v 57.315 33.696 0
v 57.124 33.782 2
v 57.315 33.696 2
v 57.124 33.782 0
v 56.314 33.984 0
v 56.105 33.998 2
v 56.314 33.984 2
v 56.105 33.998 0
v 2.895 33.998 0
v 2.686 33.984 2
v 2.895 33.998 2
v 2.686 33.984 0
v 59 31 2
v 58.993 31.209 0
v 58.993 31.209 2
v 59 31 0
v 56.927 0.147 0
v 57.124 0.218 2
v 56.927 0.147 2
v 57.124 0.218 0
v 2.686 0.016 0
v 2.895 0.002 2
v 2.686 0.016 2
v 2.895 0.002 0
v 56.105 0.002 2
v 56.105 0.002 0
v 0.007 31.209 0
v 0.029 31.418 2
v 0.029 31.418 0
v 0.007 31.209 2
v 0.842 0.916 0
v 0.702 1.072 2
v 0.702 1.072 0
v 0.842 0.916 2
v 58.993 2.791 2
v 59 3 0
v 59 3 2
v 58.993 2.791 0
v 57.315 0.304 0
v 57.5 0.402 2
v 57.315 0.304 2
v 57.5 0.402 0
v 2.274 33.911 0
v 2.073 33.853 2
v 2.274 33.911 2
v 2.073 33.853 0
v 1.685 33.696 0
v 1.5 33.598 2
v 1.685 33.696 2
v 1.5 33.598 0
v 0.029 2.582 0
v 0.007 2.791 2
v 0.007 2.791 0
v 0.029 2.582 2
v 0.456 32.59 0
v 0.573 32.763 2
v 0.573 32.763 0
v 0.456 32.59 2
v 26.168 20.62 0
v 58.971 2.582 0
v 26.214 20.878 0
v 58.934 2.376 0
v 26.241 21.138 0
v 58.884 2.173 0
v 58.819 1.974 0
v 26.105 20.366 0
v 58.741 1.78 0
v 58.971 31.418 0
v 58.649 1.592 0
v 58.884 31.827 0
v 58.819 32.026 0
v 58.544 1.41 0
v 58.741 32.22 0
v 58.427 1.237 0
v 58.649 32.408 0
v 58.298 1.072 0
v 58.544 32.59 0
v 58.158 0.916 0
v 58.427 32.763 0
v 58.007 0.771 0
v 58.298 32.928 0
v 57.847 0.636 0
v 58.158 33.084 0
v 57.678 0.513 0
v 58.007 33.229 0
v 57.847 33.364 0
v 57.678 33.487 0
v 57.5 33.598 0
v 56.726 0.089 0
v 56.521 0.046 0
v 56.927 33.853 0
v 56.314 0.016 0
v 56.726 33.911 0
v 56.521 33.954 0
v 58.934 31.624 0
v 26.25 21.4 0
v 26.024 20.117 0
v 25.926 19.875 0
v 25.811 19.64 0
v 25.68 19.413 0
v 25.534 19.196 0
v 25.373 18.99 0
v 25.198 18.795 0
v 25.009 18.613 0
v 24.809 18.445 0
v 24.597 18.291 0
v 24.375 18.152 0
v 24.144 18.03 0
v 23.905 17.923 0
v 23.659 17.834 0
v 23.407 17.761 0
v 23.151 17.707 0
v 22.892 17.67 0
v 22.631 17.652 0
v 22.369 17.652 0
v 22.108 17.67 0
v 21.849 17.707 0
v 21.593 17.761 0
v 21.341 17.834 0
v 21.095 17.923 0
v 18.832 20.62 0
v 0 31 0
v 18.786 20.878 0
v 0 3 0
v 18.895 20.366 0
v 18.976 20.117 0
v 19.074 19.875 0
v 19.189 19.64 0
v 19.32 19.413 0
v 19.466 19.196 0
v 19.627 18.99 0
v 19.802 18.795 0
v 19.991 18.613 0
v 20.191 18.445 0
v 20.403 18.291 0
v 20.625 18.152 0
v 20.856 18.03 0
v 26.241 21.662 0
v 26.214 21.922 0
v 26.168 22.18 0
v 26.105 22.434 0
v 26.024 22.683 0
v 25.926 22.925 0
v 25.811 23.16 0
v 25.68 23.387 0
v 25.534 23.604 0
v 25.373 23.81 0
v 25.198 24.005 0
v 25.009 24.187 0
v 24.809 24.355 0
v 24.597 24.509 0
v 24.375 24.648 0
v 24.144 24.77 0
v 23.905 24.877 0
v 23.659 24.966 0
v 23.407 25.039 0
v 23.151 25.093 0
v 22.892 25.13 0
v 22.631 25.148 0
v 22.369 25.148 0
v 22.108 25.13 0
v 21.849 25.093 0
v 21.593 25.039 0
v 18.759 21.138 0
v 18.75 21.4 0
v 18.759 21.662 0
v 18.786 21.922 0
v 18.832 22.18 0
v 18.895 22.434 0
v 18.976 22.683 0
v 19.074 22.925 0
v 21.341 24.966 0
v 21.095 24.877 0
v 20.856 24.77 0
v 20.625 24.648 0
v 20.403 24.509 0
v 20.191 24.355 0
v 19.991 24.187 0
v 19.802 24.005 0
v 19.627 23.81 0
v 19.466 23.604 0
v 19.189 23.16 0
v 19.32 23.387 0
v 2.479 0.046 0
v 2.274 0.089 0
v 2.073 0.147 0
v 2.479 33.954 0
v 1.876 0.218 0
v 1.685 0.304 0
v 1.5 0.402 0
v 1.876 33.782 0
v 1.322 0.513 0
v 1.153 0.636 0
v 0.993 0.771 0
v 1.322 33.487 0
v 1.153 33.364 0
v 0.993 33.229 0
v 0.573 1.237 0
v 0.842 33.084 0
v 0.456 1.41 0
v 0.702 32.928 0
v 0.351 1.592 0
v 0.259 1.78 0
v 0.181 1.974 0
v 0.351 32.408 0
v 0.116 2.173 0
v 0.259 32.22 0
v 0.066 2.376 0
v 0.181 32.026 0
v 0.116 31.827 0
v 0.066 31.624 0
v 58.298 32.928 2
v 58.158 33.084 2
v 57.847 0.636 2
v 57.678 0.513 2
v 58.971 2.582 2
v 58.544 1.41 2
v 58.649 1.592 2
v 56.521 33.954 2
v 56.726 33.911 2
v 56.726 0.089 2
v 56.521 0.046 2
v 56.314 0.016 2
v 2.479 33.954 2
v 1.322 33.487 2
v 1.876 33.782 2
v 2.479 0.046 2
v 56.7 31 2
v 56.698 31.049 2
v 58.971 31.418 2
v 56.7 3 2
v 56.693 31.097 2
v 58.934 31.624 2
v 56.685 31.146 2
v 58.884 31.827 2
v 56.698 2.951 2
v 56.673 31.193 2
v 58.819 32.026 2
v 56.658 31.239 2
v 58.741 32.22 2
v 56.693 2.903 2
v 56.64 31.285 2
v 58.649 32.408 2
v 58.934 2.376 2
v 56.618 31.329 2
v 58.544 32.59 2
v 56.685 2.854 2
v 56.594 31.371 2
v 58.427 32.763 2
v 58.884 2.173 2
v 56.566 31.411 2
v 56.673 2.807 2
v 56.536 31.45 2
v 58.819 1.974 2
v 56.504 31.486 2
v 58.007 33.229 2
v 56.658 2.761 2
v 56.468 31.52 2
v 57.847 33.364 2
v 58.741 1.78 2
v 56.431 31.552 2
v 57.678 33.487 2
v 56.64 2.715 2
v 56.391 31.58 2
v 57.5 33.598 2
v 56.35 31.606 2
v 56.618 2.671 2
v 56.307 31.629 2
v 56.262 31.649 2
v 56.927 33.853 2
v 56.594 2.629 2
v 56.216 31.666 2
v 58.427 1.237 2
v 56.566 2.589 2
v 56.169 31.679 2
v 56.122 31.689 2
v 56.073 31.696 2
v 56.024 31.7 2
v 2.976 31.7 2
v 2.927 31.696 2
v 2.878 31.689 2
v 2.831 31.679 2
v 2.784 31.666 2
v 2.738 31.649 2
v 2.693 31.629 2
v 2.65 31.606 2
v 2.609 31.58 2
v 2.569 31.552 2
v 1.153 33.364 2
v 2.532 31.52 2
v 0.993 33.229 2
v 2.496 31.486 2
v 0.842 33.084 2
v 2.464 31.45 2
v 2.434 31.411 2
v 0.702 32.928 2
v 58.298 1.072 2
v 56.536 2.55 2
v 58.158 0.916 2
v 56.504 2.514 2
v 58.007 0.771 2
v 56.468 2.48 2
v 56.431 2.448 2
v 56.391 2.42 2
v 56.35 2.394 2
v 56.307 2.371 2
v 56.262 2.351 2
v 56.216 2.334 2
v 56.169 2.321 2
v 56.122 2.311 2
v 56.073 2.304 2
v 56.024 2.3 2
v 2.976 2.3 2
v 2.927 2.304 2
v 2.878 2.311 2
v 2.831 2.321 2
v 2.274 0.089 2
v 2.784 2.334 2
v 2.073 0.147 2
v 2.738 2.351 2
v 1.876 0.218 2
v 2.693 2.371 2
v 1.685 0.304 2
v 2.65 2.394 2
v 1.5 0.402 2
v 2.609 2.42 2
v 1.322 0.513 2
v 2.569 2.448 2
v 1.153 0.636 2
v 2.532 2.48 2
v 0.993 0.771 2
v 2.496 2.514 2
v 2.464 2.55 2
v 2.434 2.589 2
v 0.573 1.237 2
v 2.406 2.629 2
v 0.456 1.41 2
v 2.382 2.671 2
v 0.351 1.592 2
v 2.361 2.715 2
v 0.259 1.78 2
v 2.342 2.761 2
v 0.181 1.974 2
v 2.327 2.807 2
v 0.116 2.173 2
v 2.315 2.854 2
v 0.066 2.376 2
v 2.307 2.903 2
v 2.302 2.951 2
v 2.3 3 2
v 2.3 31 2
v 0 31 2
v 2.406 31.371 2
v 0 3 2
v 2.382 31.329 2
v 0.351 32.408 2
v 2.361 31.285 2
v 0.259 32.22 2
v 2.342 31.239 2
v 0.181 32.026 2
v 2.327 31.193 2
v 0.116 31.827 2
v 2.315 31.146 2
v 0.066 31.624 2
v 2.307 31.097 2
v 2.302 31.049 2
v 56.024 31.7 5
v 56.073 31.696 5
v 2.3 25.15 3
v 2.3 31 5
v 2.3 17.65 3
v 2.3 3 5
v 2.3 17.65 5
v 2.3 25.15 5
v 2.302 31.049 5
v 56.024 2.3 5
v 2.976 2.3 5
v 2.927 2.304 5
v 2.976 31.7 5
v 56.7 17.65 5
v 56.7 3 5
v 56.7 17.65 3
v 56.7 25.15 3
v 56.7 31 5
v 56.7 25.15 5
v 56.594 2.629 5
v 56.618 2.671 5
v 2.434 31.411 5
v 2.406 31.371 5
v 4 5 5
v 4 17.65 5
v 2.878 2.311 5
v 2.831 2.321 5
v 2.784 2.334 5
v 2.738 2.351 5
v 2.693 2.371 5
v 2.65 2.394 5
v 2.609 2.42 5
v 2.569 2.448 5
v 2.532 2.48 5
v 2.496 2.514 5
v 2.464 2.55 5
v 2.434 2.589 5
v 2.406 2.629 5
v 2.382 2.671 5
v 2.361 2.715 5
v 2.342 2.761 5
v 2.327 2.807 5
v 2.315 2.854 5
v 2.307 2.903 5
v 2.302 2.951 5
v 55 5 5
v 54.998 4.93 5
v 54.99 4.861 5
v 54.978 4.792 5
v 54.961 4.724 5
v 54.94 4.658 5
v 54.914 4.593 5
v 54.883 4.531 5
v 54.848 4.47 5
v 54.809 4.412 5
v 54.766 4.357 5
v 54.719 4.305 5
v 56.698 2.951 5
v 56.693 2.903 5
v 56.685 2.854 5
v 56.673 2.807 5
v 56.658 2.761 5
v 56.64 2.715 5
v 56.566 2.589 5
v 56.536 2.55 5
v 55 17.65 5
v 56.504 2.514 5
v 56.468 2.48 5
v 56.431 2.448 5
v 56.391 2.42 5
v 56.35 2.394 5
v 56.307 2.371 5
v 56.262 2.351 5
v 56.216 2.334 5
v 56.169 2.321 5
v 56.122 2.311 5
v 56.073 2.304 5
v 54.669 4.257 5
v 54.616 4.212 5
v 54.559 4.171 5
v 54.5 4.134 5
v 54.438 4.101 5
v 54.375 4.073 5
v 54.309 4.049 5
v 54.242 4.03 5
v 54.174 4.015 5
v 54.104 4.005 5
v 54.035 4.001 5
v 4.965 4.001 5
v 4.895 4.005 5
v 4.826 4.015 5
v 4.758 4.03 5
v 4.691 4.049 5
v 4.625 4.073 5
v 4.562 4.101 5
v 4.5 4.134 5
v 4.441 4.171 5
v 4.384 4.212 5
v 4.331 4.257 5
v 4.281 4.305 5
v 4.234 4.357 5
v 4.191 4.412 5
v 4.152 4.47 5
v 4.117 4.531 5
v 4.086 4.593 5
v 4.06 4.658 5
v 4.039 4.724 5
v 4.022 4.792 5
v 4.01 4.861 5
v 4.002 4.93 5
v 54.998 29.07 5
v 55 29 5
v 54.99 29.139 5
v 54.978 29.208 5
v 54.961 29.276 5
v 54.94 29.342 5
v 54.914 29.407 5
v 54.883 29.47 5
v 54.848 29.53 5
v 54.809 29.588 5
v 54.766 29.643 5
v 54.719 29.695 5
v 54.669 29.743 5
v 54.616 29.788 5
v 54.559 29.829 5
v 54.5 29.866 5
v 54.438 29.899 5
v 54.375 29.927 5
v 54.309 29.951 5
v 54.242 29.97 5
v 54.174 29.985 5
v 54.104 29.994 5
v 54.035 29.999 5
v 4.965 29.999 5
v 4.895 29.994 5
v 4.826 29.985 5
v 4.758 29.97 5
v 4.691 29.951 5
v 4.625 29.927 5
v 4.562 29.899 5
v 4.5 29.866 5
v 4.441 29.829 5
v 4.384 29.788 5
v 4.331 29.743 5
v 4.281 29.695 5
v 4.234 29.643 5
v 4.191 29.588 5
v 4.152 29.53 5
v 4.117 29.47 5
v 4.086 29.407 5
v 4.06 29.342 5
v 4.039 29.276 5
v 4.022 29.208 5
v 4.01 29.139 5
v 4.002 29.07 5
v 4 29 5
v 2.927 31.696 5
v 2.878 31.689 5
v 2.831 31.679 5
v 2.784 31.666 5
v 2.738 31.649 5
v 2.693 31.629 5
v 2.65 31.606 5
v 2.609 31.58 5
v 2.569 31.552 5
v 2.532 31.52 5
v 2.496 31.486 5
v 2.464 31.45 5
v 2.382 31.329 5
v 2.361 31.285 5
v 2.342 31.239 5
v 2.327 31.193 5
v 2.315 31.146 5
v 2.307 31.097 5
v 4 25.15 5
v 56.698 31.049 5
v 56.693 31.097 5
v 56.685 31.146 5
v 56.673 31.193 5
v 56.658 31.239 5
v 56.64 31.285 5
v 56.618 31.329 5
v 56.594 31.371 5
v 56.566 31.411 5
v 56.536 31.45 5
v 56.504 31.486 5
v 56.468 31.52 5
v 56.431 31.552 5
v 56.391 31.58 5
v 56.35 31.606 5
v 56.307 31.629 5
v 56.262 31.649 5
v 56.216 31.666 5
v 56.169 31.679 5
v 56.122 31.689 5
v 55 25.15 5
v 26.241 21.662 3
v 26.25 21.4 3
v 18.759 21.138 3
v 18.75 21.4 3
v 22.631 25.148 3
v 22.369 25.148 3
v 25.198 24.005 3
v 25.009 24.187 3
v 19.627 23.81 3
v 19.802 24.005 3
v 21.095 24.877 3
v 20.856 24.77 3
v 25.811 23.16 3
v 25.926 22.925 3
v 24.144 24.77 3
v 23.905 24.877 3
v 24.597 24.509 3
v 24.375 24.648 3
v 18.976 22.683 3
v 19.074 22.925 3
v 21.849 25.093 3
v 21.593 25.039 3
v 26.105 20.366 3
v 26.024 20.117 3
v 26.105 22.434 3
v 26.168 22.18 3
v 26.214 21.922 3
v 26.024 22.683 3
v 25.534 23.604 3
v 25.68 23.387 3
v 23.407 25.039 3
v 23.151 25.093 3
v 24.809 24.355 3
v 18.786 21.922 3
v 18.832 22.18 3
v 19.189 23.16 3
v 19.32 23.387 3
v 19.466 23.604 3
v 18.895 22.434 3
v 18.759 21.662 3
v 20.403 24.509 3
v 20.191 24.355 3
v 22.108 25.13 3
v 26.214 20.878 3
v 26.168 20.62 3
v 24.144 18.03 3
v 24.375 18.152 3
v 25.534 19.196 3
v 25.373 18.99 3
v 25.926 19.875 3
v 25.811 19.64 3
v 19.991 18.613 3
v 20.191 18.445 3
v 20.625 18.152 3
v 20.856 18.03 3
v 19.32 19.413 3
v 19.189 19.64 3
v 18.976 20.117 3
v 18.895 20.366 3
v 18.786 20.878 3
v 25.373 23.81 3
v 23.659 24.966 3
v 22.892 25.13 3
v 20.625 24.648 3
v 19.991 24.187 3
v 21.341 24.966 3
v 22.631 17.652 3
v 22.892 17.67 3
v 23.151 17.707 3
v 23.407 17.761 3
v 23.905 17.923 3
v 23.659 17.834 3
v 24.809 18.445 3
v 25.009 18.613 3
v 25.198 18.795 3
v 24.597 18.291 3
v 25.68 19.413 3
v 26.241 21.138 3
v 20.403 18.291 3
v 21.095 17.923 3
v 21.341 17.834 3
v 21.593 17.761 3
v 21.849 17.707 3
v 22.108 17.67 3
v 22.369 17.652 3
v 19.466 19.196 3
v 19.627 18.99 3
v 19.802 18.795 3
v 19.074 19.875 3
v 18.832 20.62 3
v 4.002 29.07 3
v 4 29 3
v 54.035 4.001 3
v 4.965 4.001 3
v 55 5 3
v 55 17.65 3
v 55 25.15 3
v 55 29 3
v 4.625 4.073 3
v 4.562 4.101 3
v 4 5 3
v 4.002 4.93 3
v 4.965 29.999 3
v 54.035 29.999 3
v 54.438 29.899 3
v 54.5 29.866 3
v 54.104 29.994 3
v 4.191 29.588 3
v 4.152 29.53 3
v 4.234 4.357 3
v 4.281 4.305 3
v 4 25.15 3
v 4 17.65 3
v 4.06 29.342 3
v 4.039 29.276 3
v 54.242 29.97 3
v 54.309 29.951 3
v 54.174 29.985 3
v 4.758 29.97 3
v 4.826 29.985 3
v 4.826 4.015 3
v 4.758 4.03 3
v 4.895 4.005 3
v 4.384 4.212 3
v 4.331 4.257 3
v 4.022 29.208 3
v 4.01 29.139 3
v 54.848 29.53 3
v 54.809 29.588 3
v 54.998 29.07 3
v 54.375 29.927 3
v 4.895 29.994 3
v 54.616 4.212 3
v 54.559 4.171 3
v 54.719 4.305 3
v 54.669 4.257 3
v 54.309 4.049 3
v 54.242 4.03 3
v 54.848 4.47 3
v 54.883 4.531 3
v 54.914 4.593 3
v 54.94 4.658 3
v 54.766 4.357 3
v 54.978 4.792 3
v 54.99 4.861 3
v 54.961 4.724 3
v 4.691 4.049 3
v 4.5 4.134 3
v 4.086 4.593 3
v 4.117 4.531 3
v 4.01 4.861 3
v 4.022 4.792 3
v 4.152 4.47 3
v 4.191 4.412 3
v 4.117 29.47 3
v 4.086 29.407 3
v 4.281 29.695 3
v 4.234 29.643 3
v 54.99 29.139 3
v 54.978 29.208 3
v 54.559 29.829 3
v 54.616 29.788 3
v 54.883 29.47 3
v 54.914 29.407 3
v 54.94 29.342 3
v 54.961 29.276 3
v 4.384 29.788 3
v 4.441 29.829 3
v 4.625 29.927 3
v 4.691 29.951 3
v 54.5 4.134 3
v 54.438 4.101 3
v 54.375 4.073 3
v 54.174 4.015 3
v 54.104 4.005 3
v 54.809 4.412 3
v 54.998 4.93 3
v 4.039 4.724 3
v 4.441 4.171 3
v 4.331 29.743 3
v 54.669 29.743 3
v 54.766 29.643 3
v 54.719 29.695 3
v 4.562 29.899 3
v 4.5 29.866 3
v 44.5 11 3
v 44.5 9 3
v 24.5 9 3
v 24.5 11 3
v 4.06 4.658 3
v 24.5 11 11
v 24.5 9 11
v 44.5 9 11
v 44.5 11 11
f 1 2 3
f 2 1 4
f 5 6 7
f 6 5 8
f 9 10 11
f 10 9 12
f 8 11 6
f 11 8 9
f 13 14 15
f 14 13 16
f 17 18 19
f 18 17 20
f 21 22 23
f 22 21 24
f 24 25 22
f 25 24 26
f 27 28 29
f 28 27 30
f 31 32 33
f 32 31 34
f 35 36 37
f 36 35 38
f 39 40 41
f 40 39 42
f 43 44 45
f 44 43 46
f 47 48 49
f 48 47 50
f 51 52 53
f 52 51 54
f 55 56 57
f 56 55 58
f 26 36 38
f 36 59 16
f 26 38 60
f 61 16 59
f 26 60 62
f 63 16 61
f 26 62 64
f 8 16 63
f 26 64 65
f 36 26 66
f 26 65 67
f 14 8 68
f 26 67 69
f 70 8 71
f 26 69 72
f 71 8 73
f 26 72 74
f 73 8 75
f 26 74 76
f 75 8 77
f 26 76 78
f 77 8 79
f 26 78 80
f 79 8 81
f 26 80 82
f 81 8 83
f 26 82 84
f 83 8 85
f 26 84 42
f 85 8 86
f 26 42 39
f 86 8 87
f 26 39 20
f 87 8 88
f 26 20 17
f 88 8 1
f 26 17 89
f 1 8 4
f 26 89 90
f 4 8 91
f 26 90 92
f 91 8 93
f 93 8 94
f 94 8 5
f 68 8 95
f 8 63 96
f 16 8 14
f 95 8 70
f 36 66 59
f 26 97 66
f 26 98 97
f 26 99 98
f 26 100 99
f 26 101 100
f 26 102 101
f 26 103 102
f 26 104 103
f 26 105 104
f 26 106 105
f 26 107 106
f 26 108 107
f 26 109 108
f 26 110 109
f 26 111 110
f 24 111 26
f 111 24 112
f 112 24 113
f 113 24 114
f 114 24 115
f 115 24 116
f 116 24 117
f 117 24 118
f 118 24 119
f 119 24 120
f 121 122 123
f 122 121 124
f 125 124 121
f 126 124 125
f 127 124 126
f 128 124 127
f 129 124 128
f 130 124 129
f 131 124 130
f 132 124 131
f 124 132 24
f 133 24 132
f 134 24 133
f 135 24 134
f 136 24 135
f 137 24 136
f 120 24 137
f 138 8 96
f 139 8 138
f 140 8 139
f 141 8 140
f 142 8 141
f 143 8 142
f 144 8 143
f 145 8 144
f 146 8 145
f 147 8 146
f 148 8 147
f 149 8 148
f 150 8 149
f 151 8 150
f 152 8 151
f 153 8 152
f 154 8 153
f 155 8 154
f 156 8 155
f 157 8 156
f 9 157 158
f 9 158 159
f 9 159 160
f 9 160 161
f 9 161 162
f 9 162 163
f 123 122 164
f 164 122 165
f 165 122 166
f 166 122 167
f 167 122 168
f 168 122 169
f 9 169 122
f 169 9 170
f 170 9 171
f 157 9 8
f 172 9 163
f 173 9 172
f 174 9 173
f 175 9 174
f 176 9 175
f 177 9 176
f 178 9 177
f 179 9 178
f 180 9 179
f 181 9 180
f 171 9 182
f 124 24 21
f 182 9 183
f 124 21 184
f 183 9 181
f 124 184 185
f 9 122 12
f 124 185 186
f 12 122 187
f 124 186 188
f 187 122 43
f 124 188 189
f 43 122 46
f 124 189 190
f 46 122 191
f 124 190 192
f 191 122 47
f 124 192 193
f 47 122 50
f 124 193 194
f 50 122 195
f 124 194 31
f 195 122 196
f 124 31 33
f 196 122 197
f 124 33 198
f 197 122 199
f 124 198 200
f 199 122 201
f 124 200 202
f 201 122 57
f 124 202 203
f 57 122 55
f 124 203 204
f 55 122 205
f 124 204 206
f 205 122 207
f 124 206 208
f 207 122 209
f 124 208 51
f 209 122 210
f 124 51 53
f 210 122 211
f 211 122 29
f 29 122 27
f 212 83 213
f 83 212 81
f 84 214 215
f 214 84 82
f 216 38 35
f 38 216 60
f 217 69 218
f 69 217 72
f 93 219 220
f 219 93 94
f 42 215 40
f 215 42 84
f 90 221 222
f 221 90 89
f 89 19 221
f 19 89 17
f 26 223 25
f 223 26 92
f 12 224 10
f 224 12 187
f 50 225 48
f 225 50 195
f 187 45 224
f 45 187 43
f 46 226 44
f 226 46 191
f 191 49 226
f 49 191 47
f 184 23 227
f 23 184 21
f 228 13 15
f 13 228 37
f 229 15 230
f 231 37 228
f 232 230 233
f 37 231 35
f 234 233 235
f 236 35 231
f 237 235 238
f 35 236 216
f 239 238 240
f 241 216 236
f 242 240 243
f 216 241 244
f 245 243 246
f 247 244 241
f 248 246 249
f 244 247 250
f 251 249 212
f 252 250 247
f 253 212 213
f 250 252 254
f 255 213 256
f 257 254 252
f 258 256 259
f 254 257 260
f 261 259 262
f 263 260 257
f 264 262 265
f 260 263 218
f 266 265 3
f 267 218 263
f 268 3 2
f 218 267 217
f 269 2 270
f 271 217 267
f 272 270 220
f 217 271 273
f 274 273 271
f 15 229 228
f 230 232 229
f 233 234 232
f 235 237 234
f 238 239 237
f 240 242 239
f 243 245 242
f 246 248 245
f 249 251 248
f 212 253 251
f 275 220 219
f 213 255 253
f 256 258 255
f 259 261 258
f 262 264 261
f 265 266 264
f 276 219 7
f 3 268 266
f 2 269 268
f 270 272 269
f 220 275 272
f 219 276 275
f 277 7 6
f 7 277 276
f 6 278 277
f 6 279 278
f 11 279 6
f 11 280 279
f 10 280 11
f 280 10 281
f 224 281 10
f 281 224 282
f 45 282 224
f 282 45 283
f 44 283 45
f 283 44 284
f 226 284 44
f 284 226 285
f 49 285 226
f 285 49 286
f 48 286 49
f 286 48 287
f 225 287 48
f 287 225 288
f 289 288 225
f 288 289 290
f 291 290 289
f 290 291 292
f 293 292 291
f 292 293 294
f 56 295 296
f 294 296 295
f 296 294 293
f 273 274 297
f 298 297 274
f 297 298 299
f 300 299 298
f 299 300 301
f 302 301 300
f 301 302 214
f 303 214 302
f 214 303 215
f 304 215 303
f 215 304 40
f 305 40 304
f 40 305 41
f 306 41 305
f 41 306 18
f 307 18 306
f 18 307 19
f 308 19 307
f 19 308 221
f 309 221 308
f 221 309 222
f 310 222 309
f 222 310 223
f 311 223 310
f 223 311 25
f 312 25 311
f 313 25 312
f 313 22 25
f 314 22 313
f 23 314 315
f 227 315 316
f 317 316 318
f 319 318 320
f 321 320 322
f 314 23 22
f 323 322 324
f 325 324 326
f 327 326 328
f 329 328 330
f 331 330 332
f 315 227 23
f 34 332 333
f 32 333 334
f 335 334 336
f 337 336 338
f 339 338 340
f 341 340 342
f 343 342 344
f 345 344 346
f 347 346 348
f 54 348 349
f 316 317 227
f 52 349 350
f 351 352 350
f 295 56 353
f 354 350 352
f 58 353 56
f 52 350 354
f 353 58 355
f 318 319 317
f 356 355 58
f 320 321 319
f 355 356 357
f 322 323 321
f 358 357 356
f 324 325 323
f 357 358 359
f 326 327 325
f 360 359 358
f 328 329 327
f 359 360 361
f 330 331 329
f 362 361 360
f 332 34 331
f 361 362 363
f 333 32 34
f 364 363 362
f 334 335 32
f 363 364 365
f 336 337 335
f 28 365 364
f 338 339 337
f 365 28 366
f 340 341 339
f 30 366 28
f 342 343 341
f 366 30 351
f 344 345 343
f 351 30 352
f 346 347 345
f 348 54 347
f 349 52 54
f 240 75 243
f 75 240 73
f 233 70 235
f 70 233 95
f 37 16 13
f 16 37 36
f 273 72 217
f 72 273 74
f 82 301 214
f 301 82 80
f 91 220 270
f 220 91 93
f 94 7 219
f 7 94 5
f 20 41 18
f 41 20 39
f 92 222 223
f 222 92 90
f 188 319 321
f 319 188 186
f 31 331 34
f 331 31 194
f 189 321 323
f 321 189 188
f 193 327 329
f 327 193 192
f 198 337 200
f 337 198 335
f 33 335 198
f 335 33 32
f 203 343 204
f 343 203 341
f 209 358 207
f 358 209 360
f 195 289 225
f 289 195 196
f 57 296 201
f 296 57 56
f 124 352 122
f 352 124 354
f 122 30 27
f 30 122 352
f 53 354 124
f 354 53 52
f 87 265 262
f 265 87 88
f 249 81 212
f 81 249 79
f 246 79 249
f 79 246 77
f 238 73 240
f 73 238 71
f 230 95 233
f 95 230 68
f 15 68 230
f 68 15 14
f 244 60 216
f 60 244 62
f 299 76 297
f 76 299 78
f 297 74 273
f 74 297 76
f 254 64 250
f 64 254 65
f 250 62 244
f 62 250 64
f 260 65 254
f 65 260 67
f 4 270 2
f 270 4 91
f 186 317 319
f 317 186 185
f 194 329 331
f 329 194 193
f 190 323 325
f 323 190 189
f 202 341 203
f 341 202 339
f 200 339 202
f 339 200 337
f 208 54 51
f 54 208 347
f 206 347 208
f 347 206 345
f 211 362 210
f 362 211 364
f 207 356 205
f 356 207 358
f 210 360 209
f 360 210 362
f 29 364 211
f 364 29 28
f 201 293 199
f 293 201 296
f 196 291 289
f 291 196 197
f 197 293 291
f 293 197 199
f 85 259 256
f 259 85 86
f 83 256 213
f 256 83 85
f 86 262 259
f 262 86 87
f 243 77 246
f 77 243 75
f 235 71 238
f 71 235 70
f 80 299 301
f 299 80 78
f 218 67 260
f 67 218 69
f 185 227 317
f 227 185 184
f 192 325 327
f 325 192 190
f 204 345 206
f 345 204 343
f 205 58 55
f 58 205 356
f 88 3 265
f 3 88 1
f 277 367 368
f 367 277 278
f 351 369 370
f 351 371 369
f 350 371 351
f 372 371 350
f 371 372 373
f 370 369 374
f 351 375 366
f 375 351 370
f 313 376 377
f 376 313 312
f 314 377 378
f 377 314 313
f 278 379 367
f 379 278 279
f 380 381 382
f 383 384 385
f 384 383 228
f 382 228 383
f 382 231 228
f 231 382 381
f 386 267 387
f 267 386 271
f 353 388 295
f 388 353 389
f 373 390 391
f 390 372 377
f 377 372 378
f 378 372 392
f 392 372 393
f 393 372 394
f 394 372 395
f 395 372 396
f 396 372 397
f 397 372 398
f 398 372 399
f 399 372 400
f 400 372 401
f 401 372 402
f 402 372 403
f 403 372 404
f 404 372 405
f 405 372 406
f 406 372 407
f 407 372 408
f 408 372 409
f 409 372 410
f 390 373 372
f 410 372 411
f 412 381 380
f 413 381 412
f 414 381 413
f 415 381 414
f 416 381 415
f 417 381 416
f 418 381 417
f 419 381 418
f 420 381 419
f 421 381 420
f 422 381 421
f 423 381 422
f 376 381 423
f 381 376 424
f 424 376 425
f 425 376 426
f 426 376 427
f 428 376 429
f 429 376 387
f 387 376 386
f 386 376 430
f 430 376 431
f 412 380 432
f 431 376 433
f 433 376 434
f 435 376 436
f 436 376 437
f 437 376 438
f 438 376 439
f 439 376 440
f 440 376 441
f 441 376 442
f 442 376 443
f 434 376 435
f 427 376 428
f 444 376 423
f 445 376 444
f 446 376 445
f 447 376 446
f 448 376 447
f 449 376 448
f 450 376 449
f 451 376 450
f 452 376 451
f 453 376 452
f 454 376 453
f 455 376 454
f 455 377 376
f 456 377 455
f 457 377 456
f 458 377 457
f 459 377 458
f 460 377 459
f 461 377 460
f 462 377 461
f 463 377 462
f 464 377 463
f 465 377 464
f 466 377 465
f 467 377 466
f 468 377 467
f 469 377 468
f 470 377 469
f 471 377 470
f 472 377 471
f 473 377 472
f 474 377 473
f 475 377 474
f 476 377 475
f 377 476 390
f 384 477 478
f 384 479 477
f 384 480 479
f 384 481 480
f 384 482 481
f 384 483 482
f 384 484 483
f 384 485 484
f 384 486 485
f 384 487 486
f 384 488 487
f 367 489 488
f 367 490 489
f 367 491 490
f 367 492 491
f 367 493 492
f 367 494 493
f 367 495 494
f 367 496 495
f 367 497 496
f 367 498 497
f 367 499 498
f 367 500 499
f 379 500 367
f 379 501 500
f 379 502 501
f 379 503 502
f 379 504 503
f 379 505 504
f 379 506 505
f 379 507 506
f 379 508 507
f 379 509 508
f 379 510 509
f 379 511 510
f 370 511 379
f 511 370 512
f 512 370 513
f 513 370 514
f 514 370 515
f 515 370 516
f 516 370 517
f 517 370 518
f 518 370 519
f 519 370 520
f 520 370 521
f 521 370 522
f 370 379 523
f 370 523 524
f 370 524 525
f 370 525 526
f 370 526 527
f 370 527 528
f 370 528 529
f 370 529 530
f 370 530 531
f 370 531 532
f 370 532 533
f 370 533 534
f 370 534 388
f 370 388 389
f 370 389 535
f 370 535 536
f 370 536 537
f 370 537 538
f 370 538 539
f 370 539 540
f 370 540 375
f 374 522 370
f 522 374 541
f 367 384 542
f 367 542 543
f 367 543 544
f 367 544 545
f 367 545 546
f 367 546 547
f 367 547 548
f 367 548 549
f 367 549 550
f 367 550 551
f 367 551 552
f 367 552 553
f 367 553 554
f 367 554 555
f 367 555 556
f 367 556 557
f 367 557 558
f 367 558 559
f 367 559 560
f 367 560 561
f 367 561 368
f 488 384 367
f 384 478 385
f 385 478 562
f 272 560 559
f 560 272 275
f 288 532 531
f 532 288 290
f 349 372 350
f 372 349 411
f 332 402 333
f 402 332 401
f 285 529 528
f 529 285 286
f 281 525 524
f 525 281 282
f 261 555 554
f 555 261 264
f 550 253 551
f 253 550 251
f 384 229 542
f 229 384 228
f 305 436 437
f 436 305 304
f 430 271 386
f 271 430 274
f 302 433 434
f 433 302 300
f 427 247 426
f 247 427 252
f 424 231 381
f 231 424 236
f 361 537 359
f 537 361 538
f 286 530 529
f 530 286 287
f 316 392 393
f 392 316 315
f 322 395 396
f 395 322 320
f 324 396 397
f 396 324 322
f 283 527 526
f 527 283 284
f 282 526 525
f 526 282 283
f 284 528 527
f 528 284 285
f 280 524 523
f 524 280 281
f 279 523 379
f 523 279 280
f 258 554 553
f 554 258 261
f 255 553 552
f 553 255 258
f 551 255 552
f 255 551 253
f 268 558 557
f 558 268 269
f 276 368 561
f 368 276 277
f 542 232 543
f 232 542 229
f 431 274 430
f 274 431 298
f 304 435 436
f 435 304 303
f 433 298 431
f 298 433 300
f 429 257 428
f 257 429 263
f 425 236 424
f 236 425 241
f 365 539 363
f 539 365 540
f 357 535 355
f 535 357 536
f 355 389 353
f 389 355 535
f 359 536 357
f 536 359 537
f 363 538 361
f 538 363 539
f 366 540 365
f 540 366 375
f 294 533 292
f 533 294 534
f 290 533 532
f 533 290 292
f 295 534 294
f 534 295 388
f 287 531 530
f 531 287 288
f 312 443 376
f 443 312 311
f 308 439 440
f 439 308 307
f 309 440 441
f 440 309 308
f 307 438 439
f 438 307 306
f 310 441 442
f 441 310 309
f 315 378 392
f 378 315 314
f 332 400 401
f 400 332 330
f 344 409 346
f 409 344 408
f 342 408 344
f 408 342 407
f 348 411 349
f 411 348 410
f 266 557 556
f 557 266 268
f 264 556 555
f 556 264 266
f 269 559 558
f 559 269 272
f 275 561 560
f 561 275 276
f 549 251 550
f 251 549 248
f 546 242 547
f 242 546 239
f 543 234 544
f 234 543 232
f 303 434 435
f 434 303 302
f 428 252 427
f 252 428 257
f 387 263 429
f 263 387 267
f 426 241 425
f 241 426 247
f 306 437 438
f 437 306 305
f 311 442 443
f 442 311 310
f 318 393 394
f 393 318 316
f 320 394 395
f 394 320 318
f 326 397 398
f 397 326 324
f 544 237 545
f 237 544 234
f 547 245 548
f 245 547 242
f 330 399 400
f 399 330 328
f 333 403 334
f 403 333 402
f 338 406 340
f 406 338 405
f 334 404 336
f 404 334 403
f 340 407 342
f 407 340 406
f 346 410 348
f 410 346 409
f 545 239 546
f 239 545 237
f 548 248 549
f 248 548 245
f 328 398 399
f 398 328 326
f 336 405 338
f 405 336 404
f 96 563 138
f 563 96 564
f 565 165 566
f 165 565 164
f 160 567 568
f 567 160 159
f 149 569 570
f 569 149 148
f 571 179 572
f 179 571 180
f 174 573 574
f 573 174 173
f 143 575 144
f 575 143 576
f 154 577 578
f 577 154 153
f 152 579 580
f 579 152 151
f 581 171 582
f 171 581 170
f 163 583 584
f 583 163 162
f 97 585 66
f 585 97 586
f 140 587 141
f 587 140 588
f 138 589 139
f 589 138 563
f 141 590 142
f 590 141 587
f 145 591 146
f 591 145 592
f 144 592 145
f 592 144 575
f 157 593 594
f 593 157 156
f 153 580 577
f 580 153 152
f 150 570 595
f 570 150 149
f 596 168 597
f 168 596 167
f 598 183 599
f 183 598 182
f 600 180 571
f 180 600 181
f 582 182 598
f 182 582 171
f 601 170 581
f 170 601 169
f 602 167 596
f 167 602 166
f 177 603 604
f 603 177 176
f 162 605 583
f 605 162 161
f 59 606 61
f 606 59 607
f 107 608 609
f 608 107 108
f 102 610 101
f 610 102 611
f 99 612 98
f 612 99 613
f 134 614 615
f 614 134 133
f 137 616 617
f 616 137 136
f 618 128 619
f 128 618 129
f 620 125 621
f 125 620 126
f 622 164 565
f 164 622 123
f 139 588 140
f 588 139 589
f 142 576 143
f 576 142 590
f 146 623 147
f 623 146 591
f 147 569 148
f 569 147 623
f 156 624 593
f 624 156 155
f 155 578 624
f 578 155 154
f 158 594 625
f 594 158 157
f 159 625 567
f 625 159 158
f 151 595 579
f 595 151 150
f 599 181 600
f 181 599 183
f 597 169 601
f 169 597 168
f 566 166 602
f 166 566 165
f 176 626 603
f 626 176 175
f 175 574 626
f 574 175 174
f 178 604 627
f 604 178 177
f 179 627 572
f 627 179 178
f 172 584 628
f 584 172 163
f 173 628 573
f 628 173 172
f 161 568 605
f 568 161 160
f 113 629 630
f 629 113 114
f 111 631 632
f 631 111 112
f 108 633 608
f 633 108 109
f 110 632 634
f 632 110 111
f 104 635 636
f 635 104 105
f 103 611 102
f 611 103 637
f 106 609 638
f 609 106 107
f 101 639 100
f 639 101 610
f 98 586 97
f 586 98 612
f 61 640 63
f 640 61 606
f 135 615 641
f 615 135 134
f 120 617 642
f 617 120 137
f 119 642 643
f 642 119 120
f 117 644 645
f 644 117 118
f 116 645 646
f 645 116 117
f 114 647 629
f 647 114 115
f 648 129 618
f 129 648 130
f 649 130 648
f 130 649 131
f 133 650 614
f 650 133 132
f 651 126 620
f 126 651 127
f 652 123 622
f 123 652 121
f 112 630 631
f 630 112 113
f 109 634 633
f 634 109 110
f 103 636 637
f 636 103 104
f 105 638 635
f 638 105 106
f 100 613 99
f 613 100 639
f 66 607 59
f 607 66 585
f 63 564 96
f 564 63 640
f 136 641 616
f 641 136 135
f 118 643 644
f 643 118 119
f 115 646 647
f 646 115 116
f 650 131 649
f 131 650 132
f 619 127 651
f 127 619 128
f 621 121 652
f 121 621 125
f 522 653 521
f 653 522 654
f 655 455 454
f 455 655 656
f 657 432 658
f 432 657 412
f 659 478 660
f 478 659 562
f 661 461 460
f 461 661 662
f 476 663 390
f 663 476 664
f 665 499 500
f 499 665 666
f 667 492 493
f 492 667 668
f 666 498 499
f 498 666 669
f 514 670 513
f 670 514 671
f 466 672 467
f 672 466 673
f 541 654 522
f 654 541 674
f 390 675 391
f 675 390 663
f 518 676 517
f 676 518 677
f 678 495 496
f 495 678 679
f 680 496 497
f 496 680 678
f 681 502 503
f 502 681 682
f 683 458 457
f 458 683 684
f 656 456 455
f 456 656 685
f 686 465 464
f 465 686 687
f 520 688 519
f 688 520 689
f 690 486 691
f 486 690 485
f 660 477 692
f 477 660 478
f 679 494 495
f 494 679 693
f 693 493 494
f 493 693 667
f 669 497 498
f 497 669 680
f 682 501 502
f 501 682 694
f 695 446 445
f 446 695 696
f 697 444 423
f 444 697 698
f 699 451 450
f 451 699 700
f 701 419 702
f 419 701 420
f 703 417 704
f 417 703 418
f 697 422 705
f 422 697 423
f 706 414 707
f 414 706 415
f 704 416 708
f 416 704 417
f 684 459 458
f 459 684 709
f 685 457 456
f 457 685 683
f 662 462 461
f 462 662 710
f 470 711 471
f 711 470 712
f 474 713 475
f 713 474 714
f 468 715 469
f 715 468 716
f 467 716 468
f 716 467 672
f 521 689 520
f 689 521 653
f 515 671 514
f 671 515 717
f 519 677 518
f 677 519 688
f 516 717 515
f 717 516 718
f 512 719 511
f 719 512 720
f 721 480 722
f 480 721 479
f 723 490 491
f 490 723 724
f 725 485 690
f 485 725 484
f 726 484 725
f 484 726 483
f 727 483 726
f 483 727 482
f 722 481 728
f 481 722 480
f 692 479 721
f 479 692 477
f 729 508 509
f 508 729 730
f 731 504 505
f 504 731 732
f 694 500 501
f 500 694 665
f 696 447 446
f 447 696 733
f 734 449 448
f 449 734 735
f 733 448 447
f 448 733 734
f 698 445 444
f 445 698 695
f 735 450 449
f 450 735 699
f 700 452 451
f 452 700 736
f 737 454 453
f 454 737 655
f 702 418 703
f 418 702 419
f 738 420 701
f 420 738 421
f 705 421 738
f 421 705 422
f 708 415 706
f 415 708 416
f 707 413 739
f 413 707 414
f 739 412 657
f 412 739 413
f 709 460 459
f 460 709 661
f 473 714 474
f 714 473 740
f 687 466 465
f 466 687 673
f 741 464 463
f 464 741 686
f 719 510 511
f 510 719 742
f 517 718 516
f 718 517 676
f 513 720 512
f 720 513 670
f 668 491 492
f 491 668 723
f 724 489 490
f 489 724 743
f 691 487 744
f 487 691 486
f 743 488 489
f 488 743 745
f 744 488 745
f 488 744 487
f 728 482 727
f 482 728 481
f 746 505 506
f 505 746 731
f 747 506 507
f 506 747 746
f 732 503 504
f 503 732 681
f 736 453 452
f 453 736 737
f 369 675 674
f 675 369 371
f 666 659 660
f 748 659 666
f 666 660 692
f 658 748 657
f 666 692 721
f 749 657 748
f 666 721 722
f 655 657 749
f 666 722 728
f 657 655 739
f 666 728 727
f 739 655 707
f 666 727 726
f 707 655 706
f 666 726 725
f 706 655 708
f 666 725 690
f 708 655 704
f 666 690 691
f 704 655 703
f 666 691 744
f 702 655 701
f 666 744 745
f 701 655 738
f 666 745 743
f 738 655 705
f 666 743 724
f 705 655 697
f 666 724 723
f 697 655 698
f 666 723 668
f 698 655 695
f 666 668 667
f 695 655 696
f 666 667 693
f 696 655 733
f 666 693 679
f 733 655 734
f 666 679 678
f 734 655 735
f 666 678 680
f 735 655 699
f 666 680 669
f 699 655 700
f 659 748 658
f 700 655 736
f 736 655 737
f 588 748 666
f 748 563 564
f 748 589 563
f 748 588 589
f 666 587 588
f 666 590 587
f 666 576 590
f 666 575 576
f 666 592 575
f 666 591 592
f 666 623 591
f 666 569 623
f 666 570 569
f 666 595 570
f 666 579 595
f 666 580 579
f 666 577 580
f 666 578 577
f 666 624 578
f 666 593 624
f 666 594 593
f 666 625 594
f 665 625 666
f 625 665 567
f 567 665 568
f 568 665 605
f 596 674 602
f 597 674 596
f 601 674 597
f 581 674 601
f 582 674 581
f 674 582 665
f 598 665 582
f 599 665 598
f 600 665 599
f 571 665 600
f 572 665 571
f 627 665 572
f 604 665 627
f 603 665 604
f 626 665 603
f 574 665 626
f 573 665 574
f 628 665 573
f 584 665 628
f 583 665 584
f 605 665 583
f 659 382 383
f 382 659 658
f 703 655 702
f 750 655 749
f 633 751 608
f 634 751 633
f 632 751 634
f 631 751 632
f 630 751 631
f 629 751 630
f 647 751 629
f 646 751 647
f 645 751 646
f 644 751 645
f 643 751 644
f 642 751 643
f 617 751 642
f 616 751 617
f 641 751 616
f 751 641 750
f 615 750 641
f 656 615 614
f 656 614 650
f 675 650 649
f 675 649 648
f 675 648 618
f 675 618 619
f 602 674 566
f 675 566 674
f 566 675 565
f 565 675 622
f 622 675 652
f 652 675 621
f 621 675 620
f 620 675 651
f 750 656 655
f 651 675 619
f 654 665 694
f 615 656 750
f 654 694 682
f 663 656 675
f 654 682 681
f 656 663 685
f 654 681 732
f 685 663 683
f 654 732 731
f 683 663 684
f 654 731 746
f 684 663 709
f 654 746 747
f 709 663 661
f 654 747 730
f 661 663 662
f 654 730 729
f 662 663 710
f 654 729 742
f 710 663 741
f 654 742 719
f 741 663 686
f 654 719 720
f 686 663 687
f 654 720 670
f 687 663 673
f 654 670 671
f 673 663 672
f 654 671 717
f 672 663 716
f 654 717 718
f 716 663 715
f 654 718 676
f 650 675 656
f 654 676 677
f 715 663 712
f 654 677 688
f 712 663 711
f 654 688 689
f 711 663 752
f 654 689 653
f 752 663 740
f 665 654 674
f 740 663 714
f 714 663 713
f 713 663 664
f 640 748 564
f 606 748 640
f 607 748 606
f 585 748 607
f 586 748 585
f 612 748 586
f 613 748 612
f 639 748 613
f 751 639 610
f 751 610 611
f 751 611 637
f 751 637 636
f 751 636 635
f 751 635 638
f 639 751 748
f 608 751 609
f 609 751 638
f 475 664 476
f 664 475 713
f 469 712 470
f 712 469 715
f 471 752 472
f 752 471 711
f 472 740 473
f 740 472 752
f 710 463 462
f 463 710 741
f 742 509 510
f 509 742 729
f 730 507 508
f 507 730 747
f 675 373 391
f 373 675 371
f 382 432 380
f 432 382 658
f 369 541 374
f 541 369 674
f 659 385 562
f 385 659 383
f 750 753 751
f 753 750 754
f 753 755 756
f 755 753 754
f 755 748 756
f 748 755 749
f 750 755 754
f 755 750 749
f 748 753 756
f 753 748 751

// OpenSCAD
// Simple Lid for the Iridium Mini Beacon Cover

$fn=90; // fragments
wall = 2.0; // cover wall thickness
thickness = 2.0; // lid end thickness
internal_width = 55.0; // internal width (X) of the cover
internal_depth = 30.0; // internal depth (Y) of the cover
gap = 0.3; // clearance gap (per side)
insert_height = 3.0; // extra height for the lid insert
internal_corner_radius = 1.0; // radius of the internal corner cylinder

sma_r = 3.75; // radius of the hole for the sma connector
sma_x_offset = -7.0; // X offset of the hole for the sma connector w.r.t. the X center of the void
sma_y_offset = 4.4; // y offset of the hole for the sma connector w.r.t. the Y center of the void
sma_wall_thickness = 3.0; // wall thickness around the SMA connectors

battery_support_width = 20.0; // Width (X) of the battery support
battery_support_depth = 2.0; // Depth (Y) of the battery support
battery_support_insertion = 9.0; // Insertion height (Z) from cover lip
battery_support_x_offset = 5.0;
battery_support_y_offset = -7.0;

if (gap > internal_corner_radius) echo("Error! Gap cannot be greater than the internal corner radius!");

width = internal_width + (2 * wall); // lid external width (X)
depth = internal_depth + (2 * wall); // lid external depth (Y)

total_height = wall + insert_height; // total height of the lid

sma_x = (width / 2) + sma_x_offset; // x position of the sma connector
sma_y = (depth / 2) + sma_y_offset; // y position of the sma connector

external_corner_radius = internal_corner_radius + wall; // external corner radius

module outer()
{
    translate([external_corner_radius, external_corner_radius, 0])
        minkowski() {
            cube([(width - (2 * external_corner_radius)), (depth - (2 * external_corner_radius)), (thickness / 2)]);
            cylinder(h=(thickness / 2), r=external_corner_radius);
        }
}

module inner()
// Thicker than required to avoid zero thickness joints
{
    translate([external_corner_radius, external_corner_radius, 0])
        minkowski() {
            cube([(width - (2 * external_corner_radius)), (depth - (2 * external_corner_radius)), (total_height / 2)]);
            cylinder(h=(total_height / 2), r=(internal_corner_radius - gap));
        }
}

module recess()
// Thicker than required to avoid zero thickness joints
{
    translate([(internal_corner_radius + wall + wall), (internal_corner_radius + wall + wall), sma_wall_thickness])
        minkowski() {
            cube([(width - (2 * (wall + wall + internal_corner_radius))), (depth - (2 * (wall + wall + internal_corner_radius))), (total_height / 2)]);
            cylinder(h=(total_height / 2), r=internal_corner_radius);
        }
}

module battery_support()
{
    translate([((width / 2) + battery_support_x_offset - (battery_support_width / 2)), ((depth / 2) + battery_support_y_offset - (battery_support_depth / 2)), 0]) {
        cube([battery_support_width, battery_support_depth, (battery_support_insertion + thickness)]);
    }
}

module lid()
{
    union() {
        outer();
        inner();
     }
}

module sma()
// Cylinder is taller than required to avoid zero thickness skins
{
    translate([sma_x, sma_y, -1]) {
        cylinder(h=(total_height + 2),r=sma_r);
    }
}

module pcb_slot()
// Cube is taller amd wider than required to avoid zero thickness skins
{
    translate([0, (sma_y - sma_r), sma_wall_thickness]) {
        cube([width, (sma_r * 2), total_height]);
    }
}

module finished_lid()
{
    union() {
        difference() {
            lid();
            sma();
            recess();
            pcb_slot();
        }
        battery_support();
    }
}

finished_lid();
